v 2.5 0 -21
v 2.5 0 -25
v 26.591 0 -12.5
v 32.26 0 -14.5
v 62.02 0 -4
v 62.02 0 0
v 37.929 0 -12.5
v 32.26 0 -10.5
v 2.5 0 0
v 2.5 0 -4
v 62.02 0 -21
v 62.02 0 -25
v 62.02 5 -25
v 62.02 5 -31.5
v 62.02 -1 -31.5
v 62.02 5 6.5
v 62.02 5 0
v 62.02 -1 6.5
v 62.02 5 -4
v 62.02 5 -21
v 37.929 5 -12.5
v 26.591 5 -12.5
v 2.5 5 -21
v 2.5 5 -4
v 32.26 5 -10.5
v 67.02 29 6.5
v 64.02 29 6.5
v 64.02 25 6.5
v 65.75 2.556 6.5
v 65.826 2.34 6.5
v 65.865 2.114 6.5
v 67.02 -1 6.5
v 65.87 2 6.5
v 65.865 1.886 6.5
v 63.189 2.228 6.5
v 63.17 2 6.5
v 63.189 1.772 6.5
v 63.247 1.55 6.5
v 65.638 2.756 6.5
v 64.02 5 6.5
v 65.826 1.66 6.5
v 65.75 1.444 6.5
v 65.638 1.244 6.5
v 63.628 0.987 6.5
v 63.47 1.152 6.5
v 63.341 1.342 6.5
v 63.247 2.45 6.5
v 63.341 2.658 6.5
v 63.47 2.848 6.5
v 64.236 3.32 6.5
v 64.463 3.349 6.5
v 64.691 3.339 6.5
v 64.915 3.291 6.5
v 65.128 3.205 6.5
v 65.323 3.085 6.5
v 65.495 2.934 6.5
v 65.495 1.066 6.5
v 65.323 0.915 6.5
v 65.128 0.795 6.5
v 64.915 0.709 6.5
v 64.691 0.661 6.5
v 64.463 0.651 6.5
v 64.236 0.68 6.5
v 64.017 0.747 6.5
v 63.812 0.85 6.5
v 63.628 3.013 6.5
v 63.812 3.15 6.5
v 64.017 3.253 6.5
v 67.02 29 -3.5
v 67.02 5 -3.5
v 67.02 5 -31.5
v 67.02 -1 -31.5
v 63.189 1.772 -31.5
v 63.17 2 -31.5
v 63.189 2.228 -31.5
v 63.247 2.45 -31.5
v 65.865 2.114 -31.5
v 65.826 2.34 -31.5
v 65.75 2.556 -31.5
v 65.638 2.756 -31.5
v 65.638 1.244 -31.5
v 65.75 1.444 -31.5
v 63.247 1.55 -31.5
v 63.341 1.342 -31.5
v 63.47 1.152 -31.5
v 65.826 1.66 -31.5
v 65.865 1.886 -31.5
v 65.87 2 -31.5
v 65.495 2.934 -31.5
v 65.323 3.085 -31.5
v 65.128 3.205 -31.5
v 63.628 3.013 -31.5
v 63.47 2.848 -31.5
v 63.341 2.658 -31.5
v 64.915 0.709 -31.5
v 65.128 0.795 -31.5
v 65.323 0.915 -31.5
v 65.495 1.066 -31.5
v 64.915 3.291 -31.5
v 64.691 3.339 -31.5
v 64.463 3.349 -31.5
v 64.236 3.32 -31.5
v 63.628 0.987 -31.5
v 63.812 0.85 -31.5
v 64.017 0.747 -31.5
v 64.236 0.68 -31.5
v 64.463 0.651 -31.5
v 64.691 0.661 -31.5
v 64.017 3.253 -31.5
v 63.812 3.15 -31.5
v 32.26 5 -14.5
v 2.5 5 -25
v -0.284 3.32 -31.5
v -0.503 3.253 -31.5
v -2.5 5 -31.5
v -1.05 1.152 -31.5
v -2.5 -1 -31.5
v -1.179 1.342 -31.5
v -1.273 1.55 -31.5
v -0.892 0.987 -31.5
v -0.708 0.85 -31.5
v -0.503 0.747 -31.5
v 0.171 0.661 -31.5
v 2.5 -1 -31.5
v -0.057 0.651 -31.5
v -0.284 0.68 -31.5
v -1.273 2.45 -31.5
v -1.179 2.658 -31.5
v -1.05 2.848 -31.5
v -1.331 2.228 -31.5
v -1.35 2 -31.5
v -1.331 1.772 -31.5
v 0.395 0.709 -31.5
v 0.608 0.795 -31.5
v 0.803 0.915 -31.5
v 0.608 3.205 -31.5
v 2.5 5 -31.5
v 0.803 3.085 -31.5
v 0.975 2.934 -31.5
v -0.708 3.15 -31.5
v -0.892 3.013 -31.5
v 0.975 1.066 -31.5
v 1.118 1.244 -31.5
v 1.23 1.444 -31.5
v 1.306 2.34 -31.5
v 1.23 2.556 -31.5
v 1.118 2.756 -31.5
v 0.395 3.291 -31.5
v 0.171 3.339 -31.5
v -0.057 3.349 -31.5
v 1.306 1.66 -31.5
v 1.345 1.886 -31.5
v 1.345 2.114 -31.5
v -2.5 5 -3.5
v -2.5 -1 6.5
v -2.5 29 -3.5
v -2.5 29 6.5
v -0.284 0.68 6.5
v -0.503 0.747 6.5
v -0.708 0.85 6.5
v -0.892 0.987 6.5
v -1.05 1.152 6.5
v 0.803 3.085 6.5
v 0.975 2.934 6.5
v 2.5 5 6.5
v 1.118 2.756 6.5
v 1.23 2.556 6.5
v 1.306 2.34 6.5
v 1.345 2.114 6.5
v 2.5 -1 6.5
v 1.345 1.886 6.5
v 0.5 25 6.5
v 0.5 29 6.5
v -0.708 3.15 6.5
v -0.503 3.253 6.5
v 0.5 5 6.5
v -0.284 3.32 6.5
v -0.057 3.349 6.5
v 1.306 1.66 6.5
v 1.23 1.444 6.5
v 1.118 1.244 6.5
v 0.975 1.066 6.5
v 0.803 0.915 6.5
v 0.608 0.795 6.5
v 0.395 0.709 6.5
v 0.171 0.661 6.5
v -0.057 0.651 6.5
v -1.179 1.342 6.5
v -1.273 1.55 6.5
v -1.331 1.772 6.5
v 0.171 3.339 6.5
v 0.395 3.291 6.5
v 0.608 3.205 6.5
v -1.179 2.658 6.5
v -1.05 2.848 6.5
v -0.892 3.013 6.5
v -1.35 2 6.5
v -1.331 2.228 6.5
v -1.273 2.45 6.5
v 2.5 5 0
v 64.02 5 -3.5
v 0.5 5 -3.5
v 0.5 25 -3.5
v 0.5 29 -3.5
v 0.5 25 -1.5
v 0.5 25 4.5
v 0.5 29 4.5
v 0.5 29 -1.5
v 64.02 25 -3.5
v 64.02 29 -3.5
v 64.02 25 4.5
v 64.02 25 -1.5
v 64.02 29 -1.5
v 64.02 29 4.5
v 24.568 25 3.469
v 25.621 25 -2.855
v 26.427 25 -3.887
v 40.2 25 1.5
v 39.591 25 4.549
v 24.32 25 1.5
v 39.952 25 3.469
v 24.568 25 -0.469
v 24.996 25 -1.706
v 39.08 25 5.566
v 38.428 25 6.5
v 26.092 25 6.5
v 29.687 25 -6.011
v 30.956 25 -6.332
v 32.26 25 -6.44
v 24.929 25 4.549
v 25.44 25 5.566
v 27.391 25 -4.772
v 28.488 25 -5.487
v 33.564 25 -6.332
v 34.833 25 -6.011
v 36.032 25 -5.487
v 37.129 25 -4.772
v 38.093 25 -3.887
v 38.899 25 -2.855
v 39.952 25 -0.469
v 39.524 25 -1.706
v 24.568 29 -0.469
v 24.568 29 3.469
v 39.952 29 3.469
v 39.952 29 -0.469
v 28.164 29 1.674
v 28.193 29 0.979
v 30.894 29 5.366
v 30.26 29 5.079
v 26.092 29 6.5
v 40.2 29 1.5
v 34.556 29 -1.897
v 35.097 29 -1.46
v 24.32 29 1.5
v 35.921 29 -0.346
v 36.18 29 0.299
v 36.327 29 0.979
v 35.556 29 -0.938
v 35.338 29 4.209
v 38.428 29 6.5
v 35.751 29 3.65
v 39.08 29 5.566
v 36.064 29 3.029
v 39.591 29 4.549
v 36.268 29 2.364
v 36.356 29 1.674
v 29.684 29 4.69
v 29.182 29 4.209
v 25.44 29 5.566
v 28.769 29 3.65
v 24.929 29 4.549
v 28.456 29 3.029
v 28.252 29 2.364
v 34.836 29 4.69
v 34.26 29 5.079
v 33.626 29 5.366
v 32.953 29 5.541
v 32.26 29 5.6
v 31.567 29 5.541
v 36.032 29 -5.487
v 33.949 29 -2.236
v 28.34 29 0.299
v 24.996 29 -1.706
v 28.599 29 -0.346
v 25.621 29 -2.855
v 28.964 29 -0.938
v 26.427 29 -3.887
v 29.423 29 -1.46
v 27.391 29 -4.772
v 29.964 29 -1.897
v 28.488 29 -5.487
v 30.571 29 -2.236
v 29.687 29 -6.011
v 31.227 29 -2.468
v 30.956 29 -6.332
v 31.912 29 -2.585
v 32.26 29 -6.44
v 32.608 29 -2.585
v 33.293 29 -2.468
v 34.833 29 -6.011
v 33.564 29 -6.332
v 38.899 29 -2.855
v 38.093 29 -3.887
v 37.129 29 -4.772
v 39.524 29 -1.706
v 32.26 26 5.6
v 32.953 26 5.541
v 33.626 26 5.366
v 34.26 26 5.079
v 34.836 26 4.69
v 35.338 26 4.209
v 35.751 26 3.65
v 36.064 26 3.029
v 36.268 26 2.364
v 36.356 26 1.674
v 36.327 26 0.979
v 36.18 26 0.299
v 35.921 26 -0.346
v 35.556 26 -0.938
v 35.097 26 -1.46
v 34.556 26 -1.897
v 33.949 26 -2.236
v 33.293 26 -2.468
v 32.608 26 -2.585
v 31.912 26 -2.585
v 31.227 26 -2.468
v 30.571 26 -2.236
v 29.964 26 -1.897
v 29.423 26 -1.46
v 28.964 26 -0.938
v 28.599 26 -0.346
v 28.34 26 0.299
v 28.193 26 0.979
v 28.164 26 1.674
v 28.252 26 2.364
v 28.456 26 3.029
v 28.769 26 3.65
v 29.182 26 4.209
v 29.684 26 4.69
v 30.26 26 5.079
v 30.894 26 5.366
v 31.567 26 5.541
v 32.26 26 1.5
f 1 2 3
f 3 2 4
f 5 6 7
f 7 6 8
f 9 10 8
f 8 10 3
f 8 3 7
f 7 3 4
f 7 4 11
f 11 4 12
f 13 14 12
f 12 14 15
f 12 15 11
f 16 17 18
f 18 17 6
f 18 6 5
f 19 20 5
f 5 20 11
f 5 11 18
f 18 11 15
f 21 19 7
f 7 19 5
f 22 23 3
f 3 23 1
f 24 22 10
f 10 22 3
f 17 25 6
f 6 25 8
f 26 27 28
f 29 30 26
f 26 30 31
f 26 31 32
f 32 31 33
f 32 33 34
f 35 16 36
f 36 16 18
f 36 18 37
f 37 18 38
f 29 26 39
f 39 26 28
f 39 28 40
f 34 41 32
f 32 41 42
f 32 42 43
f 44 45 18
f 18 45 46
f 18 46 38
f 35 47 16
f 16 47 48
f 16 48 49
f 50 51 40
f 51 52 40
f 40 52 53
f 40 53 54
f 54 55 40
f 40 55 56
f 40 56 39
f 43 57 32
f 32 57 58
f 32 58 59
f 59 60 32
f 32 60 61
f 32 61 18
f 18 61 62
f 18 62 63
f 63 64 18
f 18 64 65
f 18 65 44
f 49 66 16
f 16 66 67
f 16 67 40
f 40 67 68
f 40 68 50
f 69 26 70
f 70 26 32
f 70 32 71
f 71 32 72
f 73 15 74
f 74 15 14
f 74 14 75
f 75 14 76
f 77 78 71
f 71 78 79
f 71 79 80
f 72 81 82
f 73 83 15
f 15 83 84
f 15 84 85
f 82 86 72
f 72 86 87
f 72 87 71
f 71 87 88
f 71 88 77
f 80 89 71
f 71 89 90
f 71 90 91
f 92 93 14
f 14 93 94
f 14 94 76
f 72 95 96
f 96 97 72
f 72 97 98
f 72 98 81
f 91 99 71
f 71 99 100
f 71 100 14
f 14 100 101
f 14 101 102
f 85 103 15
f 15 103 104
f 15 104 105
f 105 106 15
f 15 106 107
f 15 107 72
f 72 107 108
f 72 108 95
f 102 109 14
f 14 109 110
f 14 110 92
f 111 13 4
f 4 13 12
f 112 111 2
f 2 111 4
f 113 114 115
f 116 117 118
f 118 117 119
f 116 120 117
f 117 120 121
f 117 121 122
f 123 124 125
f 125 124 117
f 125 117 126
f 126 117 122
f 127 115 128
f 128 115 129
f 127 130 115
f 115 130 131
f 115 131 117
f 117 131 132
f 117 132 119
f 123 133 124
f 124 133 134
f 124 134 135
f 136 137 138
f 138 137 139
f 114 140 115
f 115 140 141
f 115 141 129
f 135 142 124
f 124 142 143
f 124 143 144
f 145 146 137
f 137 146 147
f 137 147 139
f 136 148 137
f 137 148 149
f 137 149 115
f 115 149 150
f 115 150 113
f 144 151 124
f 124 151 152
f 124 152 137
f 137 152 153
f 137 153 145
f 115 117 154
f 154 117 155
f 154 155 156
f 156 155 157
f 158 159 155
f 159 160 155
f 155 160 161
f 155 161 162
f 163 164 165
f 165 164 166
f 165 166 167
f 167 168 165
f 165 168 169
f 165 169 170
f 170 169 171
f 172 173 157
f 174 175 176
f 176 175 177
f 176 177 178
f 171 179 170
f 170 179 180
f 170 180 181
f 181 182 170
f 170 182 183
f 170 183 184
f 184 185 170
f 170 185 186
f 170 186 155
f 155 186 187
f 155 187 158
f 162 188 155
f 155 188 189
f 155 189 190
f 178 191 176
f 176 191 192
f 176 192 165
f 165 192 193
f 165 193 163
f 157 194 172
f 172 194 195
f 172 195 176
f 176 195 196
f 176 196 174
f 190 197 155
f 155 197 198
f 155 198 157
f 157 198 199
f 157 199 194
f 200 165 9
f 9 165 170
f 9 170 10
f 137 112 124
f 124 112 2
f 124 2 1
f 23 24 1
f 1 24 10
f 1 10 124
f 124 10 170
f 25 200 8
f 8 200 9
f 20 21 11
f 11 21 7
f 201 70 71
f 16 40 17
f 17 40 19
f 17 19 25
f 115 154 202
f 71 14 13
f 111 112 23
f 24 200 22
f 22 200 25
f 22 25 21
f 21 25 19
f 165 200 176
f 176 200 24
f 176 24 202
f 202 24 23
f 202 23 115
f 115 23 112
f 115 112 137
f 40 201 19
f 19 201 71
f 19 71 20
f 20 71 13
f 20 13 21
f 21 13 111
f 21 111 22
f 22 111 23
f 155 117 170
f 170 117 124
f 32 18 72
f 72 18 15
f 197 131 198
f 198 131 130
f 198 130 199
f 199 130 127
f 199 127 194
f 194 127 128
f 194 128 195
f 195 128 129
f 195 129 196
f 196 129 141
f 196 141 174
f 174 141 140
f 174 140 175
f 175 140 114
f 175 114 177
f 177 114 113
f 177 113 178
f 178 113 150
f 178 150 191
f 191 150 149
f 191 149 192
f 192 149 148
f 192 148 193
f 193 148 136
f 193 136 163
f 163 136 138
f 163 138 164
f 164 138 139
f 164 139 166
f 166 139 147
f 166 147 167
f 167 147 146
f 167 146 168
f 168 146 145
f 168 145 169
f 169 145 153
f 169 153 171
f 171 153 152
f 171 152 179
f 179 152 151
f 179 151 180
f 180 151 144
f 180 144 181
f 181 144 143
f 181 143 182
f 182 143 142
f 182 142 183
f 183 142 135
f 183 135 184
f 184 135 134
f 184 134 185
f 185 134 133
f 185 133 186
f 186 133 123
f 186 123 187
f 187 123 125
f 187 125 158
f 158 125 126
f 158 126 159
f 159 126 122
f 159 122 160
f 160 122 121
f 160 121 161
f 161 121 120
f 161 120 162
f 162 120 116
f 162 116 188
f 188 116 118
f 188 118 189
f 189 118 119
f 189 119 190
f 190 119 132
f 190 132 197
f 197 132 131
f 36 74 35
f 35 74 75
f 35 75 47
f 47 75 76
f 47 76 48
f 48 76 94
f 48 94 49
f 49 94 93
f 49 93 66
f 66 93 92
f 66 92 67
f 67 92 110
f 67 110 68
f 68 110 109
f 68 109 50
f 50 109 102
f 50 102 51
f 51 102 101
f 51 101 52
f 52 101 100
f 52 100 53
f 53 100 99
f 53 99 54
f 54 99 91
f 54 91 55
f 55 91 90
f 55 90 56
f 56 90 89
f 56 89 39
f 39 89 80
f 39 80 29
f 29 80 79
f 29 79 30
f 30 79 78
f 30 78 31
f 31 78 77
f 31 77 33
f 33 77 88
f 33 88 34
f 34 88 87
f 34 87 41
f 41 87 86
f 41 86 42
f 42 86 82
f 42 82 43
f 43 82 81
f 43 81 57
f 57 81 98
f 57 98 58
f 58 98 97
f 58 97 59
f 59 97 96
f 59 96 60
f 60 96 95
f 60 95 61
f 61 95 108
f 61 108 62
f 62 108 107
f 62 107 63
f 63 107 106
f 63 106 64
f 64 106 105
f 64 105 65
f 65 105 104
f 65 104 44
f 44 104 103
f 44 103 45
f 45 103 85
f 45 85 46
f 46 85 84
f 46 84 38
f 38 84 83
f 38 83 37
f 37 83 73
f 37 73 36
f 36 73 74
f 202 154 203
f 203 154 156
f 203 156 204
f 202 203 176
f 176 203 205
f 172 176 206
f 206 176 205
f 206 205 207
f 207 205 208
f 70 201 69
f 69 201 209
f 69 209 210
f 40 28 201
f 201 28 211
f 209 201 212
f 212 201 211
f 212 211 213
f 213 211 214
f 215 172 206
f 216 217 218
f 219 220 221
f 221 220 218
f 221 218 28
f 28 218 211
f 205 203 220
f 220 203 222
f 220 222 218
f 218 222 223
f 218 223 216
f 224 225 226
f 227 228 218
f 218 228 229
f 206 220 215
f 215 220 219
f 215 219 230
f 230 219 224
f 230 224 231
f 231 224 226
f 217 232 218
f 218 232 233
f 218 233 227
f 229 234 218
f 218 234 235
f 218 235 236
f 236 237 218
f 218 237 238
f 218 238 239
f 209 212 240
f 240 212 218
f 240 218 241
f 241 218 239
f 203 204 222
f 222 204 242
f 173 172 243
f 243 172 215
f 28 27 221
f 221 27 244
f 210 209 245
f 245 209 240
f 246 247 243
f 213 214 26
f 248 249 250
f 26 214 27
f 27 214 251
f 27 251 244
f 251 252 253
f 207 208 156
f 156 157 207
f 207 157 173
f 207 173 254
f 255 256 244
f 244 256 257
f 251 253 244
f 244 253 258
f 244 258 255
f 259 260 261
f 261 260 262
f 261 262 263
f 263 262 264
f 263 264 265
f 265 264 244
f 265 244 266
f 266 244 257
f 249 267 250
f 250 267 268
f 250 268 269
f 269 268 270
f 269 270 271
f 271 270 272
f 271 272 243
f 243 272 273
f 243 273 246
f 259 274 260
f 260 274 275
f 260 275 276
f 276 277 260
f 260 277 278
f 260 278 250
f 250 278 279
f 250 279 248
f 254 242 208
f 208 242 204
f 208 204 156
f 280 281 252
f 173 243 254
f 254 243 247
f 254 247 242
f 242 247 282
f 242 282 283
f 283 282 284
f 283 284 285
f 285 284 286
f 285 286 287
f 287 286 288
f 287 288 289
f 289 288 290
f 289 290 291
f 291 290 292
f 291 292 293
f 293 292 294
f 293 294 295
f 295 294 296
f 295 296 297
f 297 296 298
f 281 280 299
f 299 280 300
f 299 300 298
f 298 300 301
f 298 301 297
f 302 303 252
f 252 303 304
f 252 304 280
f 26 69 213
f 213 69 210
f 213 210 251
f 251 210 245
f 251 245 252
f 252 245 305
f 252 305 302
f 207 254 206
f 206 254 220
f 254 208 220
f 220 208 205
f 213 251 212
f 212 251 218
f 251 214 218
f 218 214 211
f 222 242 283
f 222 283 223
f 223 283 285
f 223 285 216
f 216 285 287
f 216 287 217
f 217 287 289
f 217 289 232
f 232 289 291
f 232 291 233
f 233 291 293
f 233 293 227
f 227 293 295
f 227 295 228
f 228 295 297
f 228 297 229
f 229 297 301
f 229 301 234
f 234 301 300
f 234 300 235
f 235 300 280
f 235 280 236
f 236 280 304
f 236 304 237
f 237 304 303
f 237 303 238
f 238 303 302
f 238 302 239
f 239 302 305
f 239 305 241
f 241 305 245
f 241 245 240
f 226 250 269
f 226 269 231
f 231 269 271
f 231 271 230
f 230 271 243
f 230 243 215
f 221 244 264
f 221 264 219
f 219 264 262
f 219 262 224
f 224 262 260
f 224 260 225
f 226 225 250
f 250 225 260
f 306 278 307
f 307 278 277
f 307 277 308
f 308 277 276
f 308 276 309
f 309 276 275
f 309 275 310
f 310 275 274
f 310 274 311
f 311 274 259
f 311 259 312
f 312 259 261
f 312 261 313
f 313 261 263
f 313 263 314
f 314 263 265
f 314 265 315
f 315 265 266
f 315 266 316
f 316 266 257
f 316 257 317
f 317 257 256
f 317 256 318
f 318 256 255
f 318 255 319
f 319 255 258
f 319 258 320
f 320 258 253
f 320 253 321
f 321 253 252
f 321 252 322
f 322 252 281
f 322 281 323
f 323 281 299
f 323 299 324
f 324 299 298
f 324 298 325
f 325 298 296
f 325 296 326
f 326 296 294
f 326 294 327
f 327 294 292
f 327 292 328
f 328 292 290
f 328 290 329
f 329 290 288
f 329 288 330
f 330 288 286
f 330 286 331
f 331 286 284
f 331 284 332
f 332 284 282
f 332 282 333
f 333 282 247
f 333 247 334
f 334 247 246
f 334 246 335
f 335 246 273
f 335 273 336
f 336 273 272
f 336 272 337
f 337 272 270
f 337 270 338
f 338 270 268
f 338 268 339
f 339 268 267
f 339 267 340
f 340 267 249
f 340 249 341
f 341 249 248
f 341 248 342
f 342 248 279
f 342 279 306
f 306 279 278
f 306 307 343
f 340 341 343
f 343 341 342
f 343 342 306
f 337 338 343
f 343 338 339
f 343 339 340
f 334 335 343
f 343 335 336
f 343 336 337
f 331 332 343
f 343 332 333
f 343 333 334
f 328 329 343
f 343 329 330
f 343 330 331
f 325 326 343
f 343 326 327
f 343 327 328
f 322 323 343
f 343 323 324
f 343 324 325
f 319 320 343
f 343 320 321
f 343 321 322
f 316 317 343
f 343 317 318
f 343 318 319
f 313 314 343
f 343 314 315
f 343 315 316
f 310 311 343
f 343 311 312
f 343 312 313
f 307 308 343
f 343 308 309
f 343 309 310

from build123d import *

# Parameters (mm, degrees)
BOSS_EXTRUDE1_DEPTH     = 5
BOSS_EXTRUDE2_DEPTH     = 1
SKETCH2_R               = 1.35
CUT_EXTRUDE1_DEPTH      = 39
BOSS_EXTRUDE3_START     = -6
SKETCH3_W               = 3
SKETCH3_H               = 10
BOSS_EXTRUDE3_DEPTH     = 20
BOSS_EXTRU_1_DEPTH      = 4
BOSS_EXTRU_2_DEPTH      = 4
ESQUISSE2_R             = 4.1
ENL_V_MAT_EXTRU_1_DEPTH = 3


with BuildPart() as part:
    # Sketch1 → Boss-Extrude1 (new body)
    with BuildSketch(Plane(origin=(0, 0, 0), x_dir=(1, 0, 0), z_dir=(0, 1, 0))):
        Polygon((2.5, 0), (0, 0), (0, 25), (2.5, 25), (2.5, 31.5), (-2.5, 31.5), (-2.5, -6.5), (2.5, -6.5), align=None)
        Polygon((0, 25), (0, 0), (2.5, 0), (2.5, 4), (2.5, 21), (2.5, 25), align=None)
        Polygon((32.26, 14.5), (2.5, 25), (2.5, 21), (26.591428571, 12.5), align=None)
        Polygon((26.591428571, 12.5), (32.26, 10.5), (37.928571429, 12.5), (32.26, 14.5), align=None)
        Polygon((32.26, 14.5), (37.928571429, 12.5), (62.02, 21), (62.02, 25), align=None)
        Polygon((2.5, 4), (2.5, 0), (32.26, 10.5), (26.591428571, 12.5), align=None)
        Polygon((32.26, 10.5), (62.02, 0), (62.02, 4), (37.928571429, 12.5), align=None)
        Polygon((64.52, 0), (62.02, 0), (62.02, -6.5), (67.02, -6.5), (67.02, 31.5), (62.02, 31.5), (62.02, 25), (64.52, 25), align=None)
        Polygon((62.02, 4), (62.02, 0), (64.52, 0), (64.52, 25), (62.02, 25), (62.02, 21), align=None)
    extrude(amount=BOSS_EXTRUDE1_DEPTH)

    # Sketch1<3> → Boss-Extrude2 (add)
    with BuildSketch(Plane(origin=(0, 0, 0), x_dir=(1, 0, 0), z_dir=(0, 1, 0))):
        Polygon((0, 25), (0, 0), (2.5, 0), (2.5, 4), (2.5, 21), (2.5, 25), align=None)
        Polygon((2.5, 0), (0, 0), (0, 25), (2.5, 25), (2.5, 31.5), (-2.5, 31.5), (-2.5, -6.5), (2.5, -6.5), align=None)
        Polygon((62.02, 4), (62.02, 0), (64.52, 0), (64.52, 25), (62.02, 25), (62.02, 21), align=None)
        Polygon((64.52, 0), (62.02, 0), (62.02, -6.5), (67.02, -6.5), (67.02, 31.5), (62.02, 31.5), (62.02, 25), (64.52, 25), align=None)
    extrude(amount=-BOSS_EXTRUDE2_DEPTH)

    # Sketch2 → Cut-Extrude1 (cut, through all)
    with BuildSketch(Plane(origin=(0, 0, -31.5), x_dir=(-1, 0, 0), z_dir=(0, 0, -1))):
        with Locations((0, 2)):
            Circle(SKETCH2_R)
        with Locations((-64.52, 2)):
            Circle(SKETCH2_R)
    extrude(amount=-CUT_EXTRUDE1_DEPTH, mode=Mode.SUBTRACT)

    # Sketch3 → Boss-Extrude3 (add)
    with BuildSketch(Plane(origin=(0, -1, 0), x_dir=(-1, 0, 0), z_dir=(0, -1, 0)).offset(BOSS_EXTRUDE3_START)):
        with Locations((1, -1.5)):
            Rectangle(SKETCH3_W, SKETCH3_H)
        with Locations((-65.52, -1.5)):
            Rectangle(SKETCH3_W, SKETCH3_H)
    extrude(amount=-BOSS_EXTRUDE3_DEPTH)

    # Sketch4 → Boss.-Extru.1 (add)
    with BuildSketch(Plane(origin=(0, 25, 0), x_dir=(-1, 0, 0), z_dir=(0, -1, 0))):
        Polygon((-0.5, -6.5), (-32.26, -2.5), (-64.02, -6.5), (-67.02, -6.5), (-67.02, 3.5), (-64.02, 3.5), (-32.26, -0.5), (-0.5, 3.5), (2.5, 3.5), (2.5, -6.5), align=None)
        Polygon((-0.5, 1.5), (-24.32, -1.5), (-0.5, -4.5), align=None, mode=Mode.SUBTRACT)
        Polygon((-40.2, -1.5), (-64.02, -4.5), (-64.02, 1.5), align=None, mode=Mode.SUBTRACT)
    extrude(amount=-BOSS_EXTRU_1_DEPTH)

    # Esquisse1 → Boss.-Extru.2 (add)
    with BuildSketch(Plane(origin=(0, 29, 0), x_dir=(1, 0, 0), z_dir=(0, 1, 0))):
        with BuildLine():
            Line((26.092050584, -6.5), (38.427949416, -6.5))
            ThreePointArc((38.427949416, -6.5), (32.26, 6.44), (26.092050584, -6.5))
        make_face()
    extrude(amount=-BOSS_EXTRU_2_DEPTH)

    # Esquisse2 → Enlèv. mat.-Extru.1 (cut)
    with BuildSketch(Plane(origin=(0, 29, 0), x_dir=(1, 0, 0), z_dir=(0, 1, 0))):
        with Locations((32.26, -1.5)):
            Circle(ESQUISSE2_R)
    extrude(amount=-ENL_V_MAT_EXTRU_1_DEPTH, mode=Mode.SUBTRACT)


solid = part.part
